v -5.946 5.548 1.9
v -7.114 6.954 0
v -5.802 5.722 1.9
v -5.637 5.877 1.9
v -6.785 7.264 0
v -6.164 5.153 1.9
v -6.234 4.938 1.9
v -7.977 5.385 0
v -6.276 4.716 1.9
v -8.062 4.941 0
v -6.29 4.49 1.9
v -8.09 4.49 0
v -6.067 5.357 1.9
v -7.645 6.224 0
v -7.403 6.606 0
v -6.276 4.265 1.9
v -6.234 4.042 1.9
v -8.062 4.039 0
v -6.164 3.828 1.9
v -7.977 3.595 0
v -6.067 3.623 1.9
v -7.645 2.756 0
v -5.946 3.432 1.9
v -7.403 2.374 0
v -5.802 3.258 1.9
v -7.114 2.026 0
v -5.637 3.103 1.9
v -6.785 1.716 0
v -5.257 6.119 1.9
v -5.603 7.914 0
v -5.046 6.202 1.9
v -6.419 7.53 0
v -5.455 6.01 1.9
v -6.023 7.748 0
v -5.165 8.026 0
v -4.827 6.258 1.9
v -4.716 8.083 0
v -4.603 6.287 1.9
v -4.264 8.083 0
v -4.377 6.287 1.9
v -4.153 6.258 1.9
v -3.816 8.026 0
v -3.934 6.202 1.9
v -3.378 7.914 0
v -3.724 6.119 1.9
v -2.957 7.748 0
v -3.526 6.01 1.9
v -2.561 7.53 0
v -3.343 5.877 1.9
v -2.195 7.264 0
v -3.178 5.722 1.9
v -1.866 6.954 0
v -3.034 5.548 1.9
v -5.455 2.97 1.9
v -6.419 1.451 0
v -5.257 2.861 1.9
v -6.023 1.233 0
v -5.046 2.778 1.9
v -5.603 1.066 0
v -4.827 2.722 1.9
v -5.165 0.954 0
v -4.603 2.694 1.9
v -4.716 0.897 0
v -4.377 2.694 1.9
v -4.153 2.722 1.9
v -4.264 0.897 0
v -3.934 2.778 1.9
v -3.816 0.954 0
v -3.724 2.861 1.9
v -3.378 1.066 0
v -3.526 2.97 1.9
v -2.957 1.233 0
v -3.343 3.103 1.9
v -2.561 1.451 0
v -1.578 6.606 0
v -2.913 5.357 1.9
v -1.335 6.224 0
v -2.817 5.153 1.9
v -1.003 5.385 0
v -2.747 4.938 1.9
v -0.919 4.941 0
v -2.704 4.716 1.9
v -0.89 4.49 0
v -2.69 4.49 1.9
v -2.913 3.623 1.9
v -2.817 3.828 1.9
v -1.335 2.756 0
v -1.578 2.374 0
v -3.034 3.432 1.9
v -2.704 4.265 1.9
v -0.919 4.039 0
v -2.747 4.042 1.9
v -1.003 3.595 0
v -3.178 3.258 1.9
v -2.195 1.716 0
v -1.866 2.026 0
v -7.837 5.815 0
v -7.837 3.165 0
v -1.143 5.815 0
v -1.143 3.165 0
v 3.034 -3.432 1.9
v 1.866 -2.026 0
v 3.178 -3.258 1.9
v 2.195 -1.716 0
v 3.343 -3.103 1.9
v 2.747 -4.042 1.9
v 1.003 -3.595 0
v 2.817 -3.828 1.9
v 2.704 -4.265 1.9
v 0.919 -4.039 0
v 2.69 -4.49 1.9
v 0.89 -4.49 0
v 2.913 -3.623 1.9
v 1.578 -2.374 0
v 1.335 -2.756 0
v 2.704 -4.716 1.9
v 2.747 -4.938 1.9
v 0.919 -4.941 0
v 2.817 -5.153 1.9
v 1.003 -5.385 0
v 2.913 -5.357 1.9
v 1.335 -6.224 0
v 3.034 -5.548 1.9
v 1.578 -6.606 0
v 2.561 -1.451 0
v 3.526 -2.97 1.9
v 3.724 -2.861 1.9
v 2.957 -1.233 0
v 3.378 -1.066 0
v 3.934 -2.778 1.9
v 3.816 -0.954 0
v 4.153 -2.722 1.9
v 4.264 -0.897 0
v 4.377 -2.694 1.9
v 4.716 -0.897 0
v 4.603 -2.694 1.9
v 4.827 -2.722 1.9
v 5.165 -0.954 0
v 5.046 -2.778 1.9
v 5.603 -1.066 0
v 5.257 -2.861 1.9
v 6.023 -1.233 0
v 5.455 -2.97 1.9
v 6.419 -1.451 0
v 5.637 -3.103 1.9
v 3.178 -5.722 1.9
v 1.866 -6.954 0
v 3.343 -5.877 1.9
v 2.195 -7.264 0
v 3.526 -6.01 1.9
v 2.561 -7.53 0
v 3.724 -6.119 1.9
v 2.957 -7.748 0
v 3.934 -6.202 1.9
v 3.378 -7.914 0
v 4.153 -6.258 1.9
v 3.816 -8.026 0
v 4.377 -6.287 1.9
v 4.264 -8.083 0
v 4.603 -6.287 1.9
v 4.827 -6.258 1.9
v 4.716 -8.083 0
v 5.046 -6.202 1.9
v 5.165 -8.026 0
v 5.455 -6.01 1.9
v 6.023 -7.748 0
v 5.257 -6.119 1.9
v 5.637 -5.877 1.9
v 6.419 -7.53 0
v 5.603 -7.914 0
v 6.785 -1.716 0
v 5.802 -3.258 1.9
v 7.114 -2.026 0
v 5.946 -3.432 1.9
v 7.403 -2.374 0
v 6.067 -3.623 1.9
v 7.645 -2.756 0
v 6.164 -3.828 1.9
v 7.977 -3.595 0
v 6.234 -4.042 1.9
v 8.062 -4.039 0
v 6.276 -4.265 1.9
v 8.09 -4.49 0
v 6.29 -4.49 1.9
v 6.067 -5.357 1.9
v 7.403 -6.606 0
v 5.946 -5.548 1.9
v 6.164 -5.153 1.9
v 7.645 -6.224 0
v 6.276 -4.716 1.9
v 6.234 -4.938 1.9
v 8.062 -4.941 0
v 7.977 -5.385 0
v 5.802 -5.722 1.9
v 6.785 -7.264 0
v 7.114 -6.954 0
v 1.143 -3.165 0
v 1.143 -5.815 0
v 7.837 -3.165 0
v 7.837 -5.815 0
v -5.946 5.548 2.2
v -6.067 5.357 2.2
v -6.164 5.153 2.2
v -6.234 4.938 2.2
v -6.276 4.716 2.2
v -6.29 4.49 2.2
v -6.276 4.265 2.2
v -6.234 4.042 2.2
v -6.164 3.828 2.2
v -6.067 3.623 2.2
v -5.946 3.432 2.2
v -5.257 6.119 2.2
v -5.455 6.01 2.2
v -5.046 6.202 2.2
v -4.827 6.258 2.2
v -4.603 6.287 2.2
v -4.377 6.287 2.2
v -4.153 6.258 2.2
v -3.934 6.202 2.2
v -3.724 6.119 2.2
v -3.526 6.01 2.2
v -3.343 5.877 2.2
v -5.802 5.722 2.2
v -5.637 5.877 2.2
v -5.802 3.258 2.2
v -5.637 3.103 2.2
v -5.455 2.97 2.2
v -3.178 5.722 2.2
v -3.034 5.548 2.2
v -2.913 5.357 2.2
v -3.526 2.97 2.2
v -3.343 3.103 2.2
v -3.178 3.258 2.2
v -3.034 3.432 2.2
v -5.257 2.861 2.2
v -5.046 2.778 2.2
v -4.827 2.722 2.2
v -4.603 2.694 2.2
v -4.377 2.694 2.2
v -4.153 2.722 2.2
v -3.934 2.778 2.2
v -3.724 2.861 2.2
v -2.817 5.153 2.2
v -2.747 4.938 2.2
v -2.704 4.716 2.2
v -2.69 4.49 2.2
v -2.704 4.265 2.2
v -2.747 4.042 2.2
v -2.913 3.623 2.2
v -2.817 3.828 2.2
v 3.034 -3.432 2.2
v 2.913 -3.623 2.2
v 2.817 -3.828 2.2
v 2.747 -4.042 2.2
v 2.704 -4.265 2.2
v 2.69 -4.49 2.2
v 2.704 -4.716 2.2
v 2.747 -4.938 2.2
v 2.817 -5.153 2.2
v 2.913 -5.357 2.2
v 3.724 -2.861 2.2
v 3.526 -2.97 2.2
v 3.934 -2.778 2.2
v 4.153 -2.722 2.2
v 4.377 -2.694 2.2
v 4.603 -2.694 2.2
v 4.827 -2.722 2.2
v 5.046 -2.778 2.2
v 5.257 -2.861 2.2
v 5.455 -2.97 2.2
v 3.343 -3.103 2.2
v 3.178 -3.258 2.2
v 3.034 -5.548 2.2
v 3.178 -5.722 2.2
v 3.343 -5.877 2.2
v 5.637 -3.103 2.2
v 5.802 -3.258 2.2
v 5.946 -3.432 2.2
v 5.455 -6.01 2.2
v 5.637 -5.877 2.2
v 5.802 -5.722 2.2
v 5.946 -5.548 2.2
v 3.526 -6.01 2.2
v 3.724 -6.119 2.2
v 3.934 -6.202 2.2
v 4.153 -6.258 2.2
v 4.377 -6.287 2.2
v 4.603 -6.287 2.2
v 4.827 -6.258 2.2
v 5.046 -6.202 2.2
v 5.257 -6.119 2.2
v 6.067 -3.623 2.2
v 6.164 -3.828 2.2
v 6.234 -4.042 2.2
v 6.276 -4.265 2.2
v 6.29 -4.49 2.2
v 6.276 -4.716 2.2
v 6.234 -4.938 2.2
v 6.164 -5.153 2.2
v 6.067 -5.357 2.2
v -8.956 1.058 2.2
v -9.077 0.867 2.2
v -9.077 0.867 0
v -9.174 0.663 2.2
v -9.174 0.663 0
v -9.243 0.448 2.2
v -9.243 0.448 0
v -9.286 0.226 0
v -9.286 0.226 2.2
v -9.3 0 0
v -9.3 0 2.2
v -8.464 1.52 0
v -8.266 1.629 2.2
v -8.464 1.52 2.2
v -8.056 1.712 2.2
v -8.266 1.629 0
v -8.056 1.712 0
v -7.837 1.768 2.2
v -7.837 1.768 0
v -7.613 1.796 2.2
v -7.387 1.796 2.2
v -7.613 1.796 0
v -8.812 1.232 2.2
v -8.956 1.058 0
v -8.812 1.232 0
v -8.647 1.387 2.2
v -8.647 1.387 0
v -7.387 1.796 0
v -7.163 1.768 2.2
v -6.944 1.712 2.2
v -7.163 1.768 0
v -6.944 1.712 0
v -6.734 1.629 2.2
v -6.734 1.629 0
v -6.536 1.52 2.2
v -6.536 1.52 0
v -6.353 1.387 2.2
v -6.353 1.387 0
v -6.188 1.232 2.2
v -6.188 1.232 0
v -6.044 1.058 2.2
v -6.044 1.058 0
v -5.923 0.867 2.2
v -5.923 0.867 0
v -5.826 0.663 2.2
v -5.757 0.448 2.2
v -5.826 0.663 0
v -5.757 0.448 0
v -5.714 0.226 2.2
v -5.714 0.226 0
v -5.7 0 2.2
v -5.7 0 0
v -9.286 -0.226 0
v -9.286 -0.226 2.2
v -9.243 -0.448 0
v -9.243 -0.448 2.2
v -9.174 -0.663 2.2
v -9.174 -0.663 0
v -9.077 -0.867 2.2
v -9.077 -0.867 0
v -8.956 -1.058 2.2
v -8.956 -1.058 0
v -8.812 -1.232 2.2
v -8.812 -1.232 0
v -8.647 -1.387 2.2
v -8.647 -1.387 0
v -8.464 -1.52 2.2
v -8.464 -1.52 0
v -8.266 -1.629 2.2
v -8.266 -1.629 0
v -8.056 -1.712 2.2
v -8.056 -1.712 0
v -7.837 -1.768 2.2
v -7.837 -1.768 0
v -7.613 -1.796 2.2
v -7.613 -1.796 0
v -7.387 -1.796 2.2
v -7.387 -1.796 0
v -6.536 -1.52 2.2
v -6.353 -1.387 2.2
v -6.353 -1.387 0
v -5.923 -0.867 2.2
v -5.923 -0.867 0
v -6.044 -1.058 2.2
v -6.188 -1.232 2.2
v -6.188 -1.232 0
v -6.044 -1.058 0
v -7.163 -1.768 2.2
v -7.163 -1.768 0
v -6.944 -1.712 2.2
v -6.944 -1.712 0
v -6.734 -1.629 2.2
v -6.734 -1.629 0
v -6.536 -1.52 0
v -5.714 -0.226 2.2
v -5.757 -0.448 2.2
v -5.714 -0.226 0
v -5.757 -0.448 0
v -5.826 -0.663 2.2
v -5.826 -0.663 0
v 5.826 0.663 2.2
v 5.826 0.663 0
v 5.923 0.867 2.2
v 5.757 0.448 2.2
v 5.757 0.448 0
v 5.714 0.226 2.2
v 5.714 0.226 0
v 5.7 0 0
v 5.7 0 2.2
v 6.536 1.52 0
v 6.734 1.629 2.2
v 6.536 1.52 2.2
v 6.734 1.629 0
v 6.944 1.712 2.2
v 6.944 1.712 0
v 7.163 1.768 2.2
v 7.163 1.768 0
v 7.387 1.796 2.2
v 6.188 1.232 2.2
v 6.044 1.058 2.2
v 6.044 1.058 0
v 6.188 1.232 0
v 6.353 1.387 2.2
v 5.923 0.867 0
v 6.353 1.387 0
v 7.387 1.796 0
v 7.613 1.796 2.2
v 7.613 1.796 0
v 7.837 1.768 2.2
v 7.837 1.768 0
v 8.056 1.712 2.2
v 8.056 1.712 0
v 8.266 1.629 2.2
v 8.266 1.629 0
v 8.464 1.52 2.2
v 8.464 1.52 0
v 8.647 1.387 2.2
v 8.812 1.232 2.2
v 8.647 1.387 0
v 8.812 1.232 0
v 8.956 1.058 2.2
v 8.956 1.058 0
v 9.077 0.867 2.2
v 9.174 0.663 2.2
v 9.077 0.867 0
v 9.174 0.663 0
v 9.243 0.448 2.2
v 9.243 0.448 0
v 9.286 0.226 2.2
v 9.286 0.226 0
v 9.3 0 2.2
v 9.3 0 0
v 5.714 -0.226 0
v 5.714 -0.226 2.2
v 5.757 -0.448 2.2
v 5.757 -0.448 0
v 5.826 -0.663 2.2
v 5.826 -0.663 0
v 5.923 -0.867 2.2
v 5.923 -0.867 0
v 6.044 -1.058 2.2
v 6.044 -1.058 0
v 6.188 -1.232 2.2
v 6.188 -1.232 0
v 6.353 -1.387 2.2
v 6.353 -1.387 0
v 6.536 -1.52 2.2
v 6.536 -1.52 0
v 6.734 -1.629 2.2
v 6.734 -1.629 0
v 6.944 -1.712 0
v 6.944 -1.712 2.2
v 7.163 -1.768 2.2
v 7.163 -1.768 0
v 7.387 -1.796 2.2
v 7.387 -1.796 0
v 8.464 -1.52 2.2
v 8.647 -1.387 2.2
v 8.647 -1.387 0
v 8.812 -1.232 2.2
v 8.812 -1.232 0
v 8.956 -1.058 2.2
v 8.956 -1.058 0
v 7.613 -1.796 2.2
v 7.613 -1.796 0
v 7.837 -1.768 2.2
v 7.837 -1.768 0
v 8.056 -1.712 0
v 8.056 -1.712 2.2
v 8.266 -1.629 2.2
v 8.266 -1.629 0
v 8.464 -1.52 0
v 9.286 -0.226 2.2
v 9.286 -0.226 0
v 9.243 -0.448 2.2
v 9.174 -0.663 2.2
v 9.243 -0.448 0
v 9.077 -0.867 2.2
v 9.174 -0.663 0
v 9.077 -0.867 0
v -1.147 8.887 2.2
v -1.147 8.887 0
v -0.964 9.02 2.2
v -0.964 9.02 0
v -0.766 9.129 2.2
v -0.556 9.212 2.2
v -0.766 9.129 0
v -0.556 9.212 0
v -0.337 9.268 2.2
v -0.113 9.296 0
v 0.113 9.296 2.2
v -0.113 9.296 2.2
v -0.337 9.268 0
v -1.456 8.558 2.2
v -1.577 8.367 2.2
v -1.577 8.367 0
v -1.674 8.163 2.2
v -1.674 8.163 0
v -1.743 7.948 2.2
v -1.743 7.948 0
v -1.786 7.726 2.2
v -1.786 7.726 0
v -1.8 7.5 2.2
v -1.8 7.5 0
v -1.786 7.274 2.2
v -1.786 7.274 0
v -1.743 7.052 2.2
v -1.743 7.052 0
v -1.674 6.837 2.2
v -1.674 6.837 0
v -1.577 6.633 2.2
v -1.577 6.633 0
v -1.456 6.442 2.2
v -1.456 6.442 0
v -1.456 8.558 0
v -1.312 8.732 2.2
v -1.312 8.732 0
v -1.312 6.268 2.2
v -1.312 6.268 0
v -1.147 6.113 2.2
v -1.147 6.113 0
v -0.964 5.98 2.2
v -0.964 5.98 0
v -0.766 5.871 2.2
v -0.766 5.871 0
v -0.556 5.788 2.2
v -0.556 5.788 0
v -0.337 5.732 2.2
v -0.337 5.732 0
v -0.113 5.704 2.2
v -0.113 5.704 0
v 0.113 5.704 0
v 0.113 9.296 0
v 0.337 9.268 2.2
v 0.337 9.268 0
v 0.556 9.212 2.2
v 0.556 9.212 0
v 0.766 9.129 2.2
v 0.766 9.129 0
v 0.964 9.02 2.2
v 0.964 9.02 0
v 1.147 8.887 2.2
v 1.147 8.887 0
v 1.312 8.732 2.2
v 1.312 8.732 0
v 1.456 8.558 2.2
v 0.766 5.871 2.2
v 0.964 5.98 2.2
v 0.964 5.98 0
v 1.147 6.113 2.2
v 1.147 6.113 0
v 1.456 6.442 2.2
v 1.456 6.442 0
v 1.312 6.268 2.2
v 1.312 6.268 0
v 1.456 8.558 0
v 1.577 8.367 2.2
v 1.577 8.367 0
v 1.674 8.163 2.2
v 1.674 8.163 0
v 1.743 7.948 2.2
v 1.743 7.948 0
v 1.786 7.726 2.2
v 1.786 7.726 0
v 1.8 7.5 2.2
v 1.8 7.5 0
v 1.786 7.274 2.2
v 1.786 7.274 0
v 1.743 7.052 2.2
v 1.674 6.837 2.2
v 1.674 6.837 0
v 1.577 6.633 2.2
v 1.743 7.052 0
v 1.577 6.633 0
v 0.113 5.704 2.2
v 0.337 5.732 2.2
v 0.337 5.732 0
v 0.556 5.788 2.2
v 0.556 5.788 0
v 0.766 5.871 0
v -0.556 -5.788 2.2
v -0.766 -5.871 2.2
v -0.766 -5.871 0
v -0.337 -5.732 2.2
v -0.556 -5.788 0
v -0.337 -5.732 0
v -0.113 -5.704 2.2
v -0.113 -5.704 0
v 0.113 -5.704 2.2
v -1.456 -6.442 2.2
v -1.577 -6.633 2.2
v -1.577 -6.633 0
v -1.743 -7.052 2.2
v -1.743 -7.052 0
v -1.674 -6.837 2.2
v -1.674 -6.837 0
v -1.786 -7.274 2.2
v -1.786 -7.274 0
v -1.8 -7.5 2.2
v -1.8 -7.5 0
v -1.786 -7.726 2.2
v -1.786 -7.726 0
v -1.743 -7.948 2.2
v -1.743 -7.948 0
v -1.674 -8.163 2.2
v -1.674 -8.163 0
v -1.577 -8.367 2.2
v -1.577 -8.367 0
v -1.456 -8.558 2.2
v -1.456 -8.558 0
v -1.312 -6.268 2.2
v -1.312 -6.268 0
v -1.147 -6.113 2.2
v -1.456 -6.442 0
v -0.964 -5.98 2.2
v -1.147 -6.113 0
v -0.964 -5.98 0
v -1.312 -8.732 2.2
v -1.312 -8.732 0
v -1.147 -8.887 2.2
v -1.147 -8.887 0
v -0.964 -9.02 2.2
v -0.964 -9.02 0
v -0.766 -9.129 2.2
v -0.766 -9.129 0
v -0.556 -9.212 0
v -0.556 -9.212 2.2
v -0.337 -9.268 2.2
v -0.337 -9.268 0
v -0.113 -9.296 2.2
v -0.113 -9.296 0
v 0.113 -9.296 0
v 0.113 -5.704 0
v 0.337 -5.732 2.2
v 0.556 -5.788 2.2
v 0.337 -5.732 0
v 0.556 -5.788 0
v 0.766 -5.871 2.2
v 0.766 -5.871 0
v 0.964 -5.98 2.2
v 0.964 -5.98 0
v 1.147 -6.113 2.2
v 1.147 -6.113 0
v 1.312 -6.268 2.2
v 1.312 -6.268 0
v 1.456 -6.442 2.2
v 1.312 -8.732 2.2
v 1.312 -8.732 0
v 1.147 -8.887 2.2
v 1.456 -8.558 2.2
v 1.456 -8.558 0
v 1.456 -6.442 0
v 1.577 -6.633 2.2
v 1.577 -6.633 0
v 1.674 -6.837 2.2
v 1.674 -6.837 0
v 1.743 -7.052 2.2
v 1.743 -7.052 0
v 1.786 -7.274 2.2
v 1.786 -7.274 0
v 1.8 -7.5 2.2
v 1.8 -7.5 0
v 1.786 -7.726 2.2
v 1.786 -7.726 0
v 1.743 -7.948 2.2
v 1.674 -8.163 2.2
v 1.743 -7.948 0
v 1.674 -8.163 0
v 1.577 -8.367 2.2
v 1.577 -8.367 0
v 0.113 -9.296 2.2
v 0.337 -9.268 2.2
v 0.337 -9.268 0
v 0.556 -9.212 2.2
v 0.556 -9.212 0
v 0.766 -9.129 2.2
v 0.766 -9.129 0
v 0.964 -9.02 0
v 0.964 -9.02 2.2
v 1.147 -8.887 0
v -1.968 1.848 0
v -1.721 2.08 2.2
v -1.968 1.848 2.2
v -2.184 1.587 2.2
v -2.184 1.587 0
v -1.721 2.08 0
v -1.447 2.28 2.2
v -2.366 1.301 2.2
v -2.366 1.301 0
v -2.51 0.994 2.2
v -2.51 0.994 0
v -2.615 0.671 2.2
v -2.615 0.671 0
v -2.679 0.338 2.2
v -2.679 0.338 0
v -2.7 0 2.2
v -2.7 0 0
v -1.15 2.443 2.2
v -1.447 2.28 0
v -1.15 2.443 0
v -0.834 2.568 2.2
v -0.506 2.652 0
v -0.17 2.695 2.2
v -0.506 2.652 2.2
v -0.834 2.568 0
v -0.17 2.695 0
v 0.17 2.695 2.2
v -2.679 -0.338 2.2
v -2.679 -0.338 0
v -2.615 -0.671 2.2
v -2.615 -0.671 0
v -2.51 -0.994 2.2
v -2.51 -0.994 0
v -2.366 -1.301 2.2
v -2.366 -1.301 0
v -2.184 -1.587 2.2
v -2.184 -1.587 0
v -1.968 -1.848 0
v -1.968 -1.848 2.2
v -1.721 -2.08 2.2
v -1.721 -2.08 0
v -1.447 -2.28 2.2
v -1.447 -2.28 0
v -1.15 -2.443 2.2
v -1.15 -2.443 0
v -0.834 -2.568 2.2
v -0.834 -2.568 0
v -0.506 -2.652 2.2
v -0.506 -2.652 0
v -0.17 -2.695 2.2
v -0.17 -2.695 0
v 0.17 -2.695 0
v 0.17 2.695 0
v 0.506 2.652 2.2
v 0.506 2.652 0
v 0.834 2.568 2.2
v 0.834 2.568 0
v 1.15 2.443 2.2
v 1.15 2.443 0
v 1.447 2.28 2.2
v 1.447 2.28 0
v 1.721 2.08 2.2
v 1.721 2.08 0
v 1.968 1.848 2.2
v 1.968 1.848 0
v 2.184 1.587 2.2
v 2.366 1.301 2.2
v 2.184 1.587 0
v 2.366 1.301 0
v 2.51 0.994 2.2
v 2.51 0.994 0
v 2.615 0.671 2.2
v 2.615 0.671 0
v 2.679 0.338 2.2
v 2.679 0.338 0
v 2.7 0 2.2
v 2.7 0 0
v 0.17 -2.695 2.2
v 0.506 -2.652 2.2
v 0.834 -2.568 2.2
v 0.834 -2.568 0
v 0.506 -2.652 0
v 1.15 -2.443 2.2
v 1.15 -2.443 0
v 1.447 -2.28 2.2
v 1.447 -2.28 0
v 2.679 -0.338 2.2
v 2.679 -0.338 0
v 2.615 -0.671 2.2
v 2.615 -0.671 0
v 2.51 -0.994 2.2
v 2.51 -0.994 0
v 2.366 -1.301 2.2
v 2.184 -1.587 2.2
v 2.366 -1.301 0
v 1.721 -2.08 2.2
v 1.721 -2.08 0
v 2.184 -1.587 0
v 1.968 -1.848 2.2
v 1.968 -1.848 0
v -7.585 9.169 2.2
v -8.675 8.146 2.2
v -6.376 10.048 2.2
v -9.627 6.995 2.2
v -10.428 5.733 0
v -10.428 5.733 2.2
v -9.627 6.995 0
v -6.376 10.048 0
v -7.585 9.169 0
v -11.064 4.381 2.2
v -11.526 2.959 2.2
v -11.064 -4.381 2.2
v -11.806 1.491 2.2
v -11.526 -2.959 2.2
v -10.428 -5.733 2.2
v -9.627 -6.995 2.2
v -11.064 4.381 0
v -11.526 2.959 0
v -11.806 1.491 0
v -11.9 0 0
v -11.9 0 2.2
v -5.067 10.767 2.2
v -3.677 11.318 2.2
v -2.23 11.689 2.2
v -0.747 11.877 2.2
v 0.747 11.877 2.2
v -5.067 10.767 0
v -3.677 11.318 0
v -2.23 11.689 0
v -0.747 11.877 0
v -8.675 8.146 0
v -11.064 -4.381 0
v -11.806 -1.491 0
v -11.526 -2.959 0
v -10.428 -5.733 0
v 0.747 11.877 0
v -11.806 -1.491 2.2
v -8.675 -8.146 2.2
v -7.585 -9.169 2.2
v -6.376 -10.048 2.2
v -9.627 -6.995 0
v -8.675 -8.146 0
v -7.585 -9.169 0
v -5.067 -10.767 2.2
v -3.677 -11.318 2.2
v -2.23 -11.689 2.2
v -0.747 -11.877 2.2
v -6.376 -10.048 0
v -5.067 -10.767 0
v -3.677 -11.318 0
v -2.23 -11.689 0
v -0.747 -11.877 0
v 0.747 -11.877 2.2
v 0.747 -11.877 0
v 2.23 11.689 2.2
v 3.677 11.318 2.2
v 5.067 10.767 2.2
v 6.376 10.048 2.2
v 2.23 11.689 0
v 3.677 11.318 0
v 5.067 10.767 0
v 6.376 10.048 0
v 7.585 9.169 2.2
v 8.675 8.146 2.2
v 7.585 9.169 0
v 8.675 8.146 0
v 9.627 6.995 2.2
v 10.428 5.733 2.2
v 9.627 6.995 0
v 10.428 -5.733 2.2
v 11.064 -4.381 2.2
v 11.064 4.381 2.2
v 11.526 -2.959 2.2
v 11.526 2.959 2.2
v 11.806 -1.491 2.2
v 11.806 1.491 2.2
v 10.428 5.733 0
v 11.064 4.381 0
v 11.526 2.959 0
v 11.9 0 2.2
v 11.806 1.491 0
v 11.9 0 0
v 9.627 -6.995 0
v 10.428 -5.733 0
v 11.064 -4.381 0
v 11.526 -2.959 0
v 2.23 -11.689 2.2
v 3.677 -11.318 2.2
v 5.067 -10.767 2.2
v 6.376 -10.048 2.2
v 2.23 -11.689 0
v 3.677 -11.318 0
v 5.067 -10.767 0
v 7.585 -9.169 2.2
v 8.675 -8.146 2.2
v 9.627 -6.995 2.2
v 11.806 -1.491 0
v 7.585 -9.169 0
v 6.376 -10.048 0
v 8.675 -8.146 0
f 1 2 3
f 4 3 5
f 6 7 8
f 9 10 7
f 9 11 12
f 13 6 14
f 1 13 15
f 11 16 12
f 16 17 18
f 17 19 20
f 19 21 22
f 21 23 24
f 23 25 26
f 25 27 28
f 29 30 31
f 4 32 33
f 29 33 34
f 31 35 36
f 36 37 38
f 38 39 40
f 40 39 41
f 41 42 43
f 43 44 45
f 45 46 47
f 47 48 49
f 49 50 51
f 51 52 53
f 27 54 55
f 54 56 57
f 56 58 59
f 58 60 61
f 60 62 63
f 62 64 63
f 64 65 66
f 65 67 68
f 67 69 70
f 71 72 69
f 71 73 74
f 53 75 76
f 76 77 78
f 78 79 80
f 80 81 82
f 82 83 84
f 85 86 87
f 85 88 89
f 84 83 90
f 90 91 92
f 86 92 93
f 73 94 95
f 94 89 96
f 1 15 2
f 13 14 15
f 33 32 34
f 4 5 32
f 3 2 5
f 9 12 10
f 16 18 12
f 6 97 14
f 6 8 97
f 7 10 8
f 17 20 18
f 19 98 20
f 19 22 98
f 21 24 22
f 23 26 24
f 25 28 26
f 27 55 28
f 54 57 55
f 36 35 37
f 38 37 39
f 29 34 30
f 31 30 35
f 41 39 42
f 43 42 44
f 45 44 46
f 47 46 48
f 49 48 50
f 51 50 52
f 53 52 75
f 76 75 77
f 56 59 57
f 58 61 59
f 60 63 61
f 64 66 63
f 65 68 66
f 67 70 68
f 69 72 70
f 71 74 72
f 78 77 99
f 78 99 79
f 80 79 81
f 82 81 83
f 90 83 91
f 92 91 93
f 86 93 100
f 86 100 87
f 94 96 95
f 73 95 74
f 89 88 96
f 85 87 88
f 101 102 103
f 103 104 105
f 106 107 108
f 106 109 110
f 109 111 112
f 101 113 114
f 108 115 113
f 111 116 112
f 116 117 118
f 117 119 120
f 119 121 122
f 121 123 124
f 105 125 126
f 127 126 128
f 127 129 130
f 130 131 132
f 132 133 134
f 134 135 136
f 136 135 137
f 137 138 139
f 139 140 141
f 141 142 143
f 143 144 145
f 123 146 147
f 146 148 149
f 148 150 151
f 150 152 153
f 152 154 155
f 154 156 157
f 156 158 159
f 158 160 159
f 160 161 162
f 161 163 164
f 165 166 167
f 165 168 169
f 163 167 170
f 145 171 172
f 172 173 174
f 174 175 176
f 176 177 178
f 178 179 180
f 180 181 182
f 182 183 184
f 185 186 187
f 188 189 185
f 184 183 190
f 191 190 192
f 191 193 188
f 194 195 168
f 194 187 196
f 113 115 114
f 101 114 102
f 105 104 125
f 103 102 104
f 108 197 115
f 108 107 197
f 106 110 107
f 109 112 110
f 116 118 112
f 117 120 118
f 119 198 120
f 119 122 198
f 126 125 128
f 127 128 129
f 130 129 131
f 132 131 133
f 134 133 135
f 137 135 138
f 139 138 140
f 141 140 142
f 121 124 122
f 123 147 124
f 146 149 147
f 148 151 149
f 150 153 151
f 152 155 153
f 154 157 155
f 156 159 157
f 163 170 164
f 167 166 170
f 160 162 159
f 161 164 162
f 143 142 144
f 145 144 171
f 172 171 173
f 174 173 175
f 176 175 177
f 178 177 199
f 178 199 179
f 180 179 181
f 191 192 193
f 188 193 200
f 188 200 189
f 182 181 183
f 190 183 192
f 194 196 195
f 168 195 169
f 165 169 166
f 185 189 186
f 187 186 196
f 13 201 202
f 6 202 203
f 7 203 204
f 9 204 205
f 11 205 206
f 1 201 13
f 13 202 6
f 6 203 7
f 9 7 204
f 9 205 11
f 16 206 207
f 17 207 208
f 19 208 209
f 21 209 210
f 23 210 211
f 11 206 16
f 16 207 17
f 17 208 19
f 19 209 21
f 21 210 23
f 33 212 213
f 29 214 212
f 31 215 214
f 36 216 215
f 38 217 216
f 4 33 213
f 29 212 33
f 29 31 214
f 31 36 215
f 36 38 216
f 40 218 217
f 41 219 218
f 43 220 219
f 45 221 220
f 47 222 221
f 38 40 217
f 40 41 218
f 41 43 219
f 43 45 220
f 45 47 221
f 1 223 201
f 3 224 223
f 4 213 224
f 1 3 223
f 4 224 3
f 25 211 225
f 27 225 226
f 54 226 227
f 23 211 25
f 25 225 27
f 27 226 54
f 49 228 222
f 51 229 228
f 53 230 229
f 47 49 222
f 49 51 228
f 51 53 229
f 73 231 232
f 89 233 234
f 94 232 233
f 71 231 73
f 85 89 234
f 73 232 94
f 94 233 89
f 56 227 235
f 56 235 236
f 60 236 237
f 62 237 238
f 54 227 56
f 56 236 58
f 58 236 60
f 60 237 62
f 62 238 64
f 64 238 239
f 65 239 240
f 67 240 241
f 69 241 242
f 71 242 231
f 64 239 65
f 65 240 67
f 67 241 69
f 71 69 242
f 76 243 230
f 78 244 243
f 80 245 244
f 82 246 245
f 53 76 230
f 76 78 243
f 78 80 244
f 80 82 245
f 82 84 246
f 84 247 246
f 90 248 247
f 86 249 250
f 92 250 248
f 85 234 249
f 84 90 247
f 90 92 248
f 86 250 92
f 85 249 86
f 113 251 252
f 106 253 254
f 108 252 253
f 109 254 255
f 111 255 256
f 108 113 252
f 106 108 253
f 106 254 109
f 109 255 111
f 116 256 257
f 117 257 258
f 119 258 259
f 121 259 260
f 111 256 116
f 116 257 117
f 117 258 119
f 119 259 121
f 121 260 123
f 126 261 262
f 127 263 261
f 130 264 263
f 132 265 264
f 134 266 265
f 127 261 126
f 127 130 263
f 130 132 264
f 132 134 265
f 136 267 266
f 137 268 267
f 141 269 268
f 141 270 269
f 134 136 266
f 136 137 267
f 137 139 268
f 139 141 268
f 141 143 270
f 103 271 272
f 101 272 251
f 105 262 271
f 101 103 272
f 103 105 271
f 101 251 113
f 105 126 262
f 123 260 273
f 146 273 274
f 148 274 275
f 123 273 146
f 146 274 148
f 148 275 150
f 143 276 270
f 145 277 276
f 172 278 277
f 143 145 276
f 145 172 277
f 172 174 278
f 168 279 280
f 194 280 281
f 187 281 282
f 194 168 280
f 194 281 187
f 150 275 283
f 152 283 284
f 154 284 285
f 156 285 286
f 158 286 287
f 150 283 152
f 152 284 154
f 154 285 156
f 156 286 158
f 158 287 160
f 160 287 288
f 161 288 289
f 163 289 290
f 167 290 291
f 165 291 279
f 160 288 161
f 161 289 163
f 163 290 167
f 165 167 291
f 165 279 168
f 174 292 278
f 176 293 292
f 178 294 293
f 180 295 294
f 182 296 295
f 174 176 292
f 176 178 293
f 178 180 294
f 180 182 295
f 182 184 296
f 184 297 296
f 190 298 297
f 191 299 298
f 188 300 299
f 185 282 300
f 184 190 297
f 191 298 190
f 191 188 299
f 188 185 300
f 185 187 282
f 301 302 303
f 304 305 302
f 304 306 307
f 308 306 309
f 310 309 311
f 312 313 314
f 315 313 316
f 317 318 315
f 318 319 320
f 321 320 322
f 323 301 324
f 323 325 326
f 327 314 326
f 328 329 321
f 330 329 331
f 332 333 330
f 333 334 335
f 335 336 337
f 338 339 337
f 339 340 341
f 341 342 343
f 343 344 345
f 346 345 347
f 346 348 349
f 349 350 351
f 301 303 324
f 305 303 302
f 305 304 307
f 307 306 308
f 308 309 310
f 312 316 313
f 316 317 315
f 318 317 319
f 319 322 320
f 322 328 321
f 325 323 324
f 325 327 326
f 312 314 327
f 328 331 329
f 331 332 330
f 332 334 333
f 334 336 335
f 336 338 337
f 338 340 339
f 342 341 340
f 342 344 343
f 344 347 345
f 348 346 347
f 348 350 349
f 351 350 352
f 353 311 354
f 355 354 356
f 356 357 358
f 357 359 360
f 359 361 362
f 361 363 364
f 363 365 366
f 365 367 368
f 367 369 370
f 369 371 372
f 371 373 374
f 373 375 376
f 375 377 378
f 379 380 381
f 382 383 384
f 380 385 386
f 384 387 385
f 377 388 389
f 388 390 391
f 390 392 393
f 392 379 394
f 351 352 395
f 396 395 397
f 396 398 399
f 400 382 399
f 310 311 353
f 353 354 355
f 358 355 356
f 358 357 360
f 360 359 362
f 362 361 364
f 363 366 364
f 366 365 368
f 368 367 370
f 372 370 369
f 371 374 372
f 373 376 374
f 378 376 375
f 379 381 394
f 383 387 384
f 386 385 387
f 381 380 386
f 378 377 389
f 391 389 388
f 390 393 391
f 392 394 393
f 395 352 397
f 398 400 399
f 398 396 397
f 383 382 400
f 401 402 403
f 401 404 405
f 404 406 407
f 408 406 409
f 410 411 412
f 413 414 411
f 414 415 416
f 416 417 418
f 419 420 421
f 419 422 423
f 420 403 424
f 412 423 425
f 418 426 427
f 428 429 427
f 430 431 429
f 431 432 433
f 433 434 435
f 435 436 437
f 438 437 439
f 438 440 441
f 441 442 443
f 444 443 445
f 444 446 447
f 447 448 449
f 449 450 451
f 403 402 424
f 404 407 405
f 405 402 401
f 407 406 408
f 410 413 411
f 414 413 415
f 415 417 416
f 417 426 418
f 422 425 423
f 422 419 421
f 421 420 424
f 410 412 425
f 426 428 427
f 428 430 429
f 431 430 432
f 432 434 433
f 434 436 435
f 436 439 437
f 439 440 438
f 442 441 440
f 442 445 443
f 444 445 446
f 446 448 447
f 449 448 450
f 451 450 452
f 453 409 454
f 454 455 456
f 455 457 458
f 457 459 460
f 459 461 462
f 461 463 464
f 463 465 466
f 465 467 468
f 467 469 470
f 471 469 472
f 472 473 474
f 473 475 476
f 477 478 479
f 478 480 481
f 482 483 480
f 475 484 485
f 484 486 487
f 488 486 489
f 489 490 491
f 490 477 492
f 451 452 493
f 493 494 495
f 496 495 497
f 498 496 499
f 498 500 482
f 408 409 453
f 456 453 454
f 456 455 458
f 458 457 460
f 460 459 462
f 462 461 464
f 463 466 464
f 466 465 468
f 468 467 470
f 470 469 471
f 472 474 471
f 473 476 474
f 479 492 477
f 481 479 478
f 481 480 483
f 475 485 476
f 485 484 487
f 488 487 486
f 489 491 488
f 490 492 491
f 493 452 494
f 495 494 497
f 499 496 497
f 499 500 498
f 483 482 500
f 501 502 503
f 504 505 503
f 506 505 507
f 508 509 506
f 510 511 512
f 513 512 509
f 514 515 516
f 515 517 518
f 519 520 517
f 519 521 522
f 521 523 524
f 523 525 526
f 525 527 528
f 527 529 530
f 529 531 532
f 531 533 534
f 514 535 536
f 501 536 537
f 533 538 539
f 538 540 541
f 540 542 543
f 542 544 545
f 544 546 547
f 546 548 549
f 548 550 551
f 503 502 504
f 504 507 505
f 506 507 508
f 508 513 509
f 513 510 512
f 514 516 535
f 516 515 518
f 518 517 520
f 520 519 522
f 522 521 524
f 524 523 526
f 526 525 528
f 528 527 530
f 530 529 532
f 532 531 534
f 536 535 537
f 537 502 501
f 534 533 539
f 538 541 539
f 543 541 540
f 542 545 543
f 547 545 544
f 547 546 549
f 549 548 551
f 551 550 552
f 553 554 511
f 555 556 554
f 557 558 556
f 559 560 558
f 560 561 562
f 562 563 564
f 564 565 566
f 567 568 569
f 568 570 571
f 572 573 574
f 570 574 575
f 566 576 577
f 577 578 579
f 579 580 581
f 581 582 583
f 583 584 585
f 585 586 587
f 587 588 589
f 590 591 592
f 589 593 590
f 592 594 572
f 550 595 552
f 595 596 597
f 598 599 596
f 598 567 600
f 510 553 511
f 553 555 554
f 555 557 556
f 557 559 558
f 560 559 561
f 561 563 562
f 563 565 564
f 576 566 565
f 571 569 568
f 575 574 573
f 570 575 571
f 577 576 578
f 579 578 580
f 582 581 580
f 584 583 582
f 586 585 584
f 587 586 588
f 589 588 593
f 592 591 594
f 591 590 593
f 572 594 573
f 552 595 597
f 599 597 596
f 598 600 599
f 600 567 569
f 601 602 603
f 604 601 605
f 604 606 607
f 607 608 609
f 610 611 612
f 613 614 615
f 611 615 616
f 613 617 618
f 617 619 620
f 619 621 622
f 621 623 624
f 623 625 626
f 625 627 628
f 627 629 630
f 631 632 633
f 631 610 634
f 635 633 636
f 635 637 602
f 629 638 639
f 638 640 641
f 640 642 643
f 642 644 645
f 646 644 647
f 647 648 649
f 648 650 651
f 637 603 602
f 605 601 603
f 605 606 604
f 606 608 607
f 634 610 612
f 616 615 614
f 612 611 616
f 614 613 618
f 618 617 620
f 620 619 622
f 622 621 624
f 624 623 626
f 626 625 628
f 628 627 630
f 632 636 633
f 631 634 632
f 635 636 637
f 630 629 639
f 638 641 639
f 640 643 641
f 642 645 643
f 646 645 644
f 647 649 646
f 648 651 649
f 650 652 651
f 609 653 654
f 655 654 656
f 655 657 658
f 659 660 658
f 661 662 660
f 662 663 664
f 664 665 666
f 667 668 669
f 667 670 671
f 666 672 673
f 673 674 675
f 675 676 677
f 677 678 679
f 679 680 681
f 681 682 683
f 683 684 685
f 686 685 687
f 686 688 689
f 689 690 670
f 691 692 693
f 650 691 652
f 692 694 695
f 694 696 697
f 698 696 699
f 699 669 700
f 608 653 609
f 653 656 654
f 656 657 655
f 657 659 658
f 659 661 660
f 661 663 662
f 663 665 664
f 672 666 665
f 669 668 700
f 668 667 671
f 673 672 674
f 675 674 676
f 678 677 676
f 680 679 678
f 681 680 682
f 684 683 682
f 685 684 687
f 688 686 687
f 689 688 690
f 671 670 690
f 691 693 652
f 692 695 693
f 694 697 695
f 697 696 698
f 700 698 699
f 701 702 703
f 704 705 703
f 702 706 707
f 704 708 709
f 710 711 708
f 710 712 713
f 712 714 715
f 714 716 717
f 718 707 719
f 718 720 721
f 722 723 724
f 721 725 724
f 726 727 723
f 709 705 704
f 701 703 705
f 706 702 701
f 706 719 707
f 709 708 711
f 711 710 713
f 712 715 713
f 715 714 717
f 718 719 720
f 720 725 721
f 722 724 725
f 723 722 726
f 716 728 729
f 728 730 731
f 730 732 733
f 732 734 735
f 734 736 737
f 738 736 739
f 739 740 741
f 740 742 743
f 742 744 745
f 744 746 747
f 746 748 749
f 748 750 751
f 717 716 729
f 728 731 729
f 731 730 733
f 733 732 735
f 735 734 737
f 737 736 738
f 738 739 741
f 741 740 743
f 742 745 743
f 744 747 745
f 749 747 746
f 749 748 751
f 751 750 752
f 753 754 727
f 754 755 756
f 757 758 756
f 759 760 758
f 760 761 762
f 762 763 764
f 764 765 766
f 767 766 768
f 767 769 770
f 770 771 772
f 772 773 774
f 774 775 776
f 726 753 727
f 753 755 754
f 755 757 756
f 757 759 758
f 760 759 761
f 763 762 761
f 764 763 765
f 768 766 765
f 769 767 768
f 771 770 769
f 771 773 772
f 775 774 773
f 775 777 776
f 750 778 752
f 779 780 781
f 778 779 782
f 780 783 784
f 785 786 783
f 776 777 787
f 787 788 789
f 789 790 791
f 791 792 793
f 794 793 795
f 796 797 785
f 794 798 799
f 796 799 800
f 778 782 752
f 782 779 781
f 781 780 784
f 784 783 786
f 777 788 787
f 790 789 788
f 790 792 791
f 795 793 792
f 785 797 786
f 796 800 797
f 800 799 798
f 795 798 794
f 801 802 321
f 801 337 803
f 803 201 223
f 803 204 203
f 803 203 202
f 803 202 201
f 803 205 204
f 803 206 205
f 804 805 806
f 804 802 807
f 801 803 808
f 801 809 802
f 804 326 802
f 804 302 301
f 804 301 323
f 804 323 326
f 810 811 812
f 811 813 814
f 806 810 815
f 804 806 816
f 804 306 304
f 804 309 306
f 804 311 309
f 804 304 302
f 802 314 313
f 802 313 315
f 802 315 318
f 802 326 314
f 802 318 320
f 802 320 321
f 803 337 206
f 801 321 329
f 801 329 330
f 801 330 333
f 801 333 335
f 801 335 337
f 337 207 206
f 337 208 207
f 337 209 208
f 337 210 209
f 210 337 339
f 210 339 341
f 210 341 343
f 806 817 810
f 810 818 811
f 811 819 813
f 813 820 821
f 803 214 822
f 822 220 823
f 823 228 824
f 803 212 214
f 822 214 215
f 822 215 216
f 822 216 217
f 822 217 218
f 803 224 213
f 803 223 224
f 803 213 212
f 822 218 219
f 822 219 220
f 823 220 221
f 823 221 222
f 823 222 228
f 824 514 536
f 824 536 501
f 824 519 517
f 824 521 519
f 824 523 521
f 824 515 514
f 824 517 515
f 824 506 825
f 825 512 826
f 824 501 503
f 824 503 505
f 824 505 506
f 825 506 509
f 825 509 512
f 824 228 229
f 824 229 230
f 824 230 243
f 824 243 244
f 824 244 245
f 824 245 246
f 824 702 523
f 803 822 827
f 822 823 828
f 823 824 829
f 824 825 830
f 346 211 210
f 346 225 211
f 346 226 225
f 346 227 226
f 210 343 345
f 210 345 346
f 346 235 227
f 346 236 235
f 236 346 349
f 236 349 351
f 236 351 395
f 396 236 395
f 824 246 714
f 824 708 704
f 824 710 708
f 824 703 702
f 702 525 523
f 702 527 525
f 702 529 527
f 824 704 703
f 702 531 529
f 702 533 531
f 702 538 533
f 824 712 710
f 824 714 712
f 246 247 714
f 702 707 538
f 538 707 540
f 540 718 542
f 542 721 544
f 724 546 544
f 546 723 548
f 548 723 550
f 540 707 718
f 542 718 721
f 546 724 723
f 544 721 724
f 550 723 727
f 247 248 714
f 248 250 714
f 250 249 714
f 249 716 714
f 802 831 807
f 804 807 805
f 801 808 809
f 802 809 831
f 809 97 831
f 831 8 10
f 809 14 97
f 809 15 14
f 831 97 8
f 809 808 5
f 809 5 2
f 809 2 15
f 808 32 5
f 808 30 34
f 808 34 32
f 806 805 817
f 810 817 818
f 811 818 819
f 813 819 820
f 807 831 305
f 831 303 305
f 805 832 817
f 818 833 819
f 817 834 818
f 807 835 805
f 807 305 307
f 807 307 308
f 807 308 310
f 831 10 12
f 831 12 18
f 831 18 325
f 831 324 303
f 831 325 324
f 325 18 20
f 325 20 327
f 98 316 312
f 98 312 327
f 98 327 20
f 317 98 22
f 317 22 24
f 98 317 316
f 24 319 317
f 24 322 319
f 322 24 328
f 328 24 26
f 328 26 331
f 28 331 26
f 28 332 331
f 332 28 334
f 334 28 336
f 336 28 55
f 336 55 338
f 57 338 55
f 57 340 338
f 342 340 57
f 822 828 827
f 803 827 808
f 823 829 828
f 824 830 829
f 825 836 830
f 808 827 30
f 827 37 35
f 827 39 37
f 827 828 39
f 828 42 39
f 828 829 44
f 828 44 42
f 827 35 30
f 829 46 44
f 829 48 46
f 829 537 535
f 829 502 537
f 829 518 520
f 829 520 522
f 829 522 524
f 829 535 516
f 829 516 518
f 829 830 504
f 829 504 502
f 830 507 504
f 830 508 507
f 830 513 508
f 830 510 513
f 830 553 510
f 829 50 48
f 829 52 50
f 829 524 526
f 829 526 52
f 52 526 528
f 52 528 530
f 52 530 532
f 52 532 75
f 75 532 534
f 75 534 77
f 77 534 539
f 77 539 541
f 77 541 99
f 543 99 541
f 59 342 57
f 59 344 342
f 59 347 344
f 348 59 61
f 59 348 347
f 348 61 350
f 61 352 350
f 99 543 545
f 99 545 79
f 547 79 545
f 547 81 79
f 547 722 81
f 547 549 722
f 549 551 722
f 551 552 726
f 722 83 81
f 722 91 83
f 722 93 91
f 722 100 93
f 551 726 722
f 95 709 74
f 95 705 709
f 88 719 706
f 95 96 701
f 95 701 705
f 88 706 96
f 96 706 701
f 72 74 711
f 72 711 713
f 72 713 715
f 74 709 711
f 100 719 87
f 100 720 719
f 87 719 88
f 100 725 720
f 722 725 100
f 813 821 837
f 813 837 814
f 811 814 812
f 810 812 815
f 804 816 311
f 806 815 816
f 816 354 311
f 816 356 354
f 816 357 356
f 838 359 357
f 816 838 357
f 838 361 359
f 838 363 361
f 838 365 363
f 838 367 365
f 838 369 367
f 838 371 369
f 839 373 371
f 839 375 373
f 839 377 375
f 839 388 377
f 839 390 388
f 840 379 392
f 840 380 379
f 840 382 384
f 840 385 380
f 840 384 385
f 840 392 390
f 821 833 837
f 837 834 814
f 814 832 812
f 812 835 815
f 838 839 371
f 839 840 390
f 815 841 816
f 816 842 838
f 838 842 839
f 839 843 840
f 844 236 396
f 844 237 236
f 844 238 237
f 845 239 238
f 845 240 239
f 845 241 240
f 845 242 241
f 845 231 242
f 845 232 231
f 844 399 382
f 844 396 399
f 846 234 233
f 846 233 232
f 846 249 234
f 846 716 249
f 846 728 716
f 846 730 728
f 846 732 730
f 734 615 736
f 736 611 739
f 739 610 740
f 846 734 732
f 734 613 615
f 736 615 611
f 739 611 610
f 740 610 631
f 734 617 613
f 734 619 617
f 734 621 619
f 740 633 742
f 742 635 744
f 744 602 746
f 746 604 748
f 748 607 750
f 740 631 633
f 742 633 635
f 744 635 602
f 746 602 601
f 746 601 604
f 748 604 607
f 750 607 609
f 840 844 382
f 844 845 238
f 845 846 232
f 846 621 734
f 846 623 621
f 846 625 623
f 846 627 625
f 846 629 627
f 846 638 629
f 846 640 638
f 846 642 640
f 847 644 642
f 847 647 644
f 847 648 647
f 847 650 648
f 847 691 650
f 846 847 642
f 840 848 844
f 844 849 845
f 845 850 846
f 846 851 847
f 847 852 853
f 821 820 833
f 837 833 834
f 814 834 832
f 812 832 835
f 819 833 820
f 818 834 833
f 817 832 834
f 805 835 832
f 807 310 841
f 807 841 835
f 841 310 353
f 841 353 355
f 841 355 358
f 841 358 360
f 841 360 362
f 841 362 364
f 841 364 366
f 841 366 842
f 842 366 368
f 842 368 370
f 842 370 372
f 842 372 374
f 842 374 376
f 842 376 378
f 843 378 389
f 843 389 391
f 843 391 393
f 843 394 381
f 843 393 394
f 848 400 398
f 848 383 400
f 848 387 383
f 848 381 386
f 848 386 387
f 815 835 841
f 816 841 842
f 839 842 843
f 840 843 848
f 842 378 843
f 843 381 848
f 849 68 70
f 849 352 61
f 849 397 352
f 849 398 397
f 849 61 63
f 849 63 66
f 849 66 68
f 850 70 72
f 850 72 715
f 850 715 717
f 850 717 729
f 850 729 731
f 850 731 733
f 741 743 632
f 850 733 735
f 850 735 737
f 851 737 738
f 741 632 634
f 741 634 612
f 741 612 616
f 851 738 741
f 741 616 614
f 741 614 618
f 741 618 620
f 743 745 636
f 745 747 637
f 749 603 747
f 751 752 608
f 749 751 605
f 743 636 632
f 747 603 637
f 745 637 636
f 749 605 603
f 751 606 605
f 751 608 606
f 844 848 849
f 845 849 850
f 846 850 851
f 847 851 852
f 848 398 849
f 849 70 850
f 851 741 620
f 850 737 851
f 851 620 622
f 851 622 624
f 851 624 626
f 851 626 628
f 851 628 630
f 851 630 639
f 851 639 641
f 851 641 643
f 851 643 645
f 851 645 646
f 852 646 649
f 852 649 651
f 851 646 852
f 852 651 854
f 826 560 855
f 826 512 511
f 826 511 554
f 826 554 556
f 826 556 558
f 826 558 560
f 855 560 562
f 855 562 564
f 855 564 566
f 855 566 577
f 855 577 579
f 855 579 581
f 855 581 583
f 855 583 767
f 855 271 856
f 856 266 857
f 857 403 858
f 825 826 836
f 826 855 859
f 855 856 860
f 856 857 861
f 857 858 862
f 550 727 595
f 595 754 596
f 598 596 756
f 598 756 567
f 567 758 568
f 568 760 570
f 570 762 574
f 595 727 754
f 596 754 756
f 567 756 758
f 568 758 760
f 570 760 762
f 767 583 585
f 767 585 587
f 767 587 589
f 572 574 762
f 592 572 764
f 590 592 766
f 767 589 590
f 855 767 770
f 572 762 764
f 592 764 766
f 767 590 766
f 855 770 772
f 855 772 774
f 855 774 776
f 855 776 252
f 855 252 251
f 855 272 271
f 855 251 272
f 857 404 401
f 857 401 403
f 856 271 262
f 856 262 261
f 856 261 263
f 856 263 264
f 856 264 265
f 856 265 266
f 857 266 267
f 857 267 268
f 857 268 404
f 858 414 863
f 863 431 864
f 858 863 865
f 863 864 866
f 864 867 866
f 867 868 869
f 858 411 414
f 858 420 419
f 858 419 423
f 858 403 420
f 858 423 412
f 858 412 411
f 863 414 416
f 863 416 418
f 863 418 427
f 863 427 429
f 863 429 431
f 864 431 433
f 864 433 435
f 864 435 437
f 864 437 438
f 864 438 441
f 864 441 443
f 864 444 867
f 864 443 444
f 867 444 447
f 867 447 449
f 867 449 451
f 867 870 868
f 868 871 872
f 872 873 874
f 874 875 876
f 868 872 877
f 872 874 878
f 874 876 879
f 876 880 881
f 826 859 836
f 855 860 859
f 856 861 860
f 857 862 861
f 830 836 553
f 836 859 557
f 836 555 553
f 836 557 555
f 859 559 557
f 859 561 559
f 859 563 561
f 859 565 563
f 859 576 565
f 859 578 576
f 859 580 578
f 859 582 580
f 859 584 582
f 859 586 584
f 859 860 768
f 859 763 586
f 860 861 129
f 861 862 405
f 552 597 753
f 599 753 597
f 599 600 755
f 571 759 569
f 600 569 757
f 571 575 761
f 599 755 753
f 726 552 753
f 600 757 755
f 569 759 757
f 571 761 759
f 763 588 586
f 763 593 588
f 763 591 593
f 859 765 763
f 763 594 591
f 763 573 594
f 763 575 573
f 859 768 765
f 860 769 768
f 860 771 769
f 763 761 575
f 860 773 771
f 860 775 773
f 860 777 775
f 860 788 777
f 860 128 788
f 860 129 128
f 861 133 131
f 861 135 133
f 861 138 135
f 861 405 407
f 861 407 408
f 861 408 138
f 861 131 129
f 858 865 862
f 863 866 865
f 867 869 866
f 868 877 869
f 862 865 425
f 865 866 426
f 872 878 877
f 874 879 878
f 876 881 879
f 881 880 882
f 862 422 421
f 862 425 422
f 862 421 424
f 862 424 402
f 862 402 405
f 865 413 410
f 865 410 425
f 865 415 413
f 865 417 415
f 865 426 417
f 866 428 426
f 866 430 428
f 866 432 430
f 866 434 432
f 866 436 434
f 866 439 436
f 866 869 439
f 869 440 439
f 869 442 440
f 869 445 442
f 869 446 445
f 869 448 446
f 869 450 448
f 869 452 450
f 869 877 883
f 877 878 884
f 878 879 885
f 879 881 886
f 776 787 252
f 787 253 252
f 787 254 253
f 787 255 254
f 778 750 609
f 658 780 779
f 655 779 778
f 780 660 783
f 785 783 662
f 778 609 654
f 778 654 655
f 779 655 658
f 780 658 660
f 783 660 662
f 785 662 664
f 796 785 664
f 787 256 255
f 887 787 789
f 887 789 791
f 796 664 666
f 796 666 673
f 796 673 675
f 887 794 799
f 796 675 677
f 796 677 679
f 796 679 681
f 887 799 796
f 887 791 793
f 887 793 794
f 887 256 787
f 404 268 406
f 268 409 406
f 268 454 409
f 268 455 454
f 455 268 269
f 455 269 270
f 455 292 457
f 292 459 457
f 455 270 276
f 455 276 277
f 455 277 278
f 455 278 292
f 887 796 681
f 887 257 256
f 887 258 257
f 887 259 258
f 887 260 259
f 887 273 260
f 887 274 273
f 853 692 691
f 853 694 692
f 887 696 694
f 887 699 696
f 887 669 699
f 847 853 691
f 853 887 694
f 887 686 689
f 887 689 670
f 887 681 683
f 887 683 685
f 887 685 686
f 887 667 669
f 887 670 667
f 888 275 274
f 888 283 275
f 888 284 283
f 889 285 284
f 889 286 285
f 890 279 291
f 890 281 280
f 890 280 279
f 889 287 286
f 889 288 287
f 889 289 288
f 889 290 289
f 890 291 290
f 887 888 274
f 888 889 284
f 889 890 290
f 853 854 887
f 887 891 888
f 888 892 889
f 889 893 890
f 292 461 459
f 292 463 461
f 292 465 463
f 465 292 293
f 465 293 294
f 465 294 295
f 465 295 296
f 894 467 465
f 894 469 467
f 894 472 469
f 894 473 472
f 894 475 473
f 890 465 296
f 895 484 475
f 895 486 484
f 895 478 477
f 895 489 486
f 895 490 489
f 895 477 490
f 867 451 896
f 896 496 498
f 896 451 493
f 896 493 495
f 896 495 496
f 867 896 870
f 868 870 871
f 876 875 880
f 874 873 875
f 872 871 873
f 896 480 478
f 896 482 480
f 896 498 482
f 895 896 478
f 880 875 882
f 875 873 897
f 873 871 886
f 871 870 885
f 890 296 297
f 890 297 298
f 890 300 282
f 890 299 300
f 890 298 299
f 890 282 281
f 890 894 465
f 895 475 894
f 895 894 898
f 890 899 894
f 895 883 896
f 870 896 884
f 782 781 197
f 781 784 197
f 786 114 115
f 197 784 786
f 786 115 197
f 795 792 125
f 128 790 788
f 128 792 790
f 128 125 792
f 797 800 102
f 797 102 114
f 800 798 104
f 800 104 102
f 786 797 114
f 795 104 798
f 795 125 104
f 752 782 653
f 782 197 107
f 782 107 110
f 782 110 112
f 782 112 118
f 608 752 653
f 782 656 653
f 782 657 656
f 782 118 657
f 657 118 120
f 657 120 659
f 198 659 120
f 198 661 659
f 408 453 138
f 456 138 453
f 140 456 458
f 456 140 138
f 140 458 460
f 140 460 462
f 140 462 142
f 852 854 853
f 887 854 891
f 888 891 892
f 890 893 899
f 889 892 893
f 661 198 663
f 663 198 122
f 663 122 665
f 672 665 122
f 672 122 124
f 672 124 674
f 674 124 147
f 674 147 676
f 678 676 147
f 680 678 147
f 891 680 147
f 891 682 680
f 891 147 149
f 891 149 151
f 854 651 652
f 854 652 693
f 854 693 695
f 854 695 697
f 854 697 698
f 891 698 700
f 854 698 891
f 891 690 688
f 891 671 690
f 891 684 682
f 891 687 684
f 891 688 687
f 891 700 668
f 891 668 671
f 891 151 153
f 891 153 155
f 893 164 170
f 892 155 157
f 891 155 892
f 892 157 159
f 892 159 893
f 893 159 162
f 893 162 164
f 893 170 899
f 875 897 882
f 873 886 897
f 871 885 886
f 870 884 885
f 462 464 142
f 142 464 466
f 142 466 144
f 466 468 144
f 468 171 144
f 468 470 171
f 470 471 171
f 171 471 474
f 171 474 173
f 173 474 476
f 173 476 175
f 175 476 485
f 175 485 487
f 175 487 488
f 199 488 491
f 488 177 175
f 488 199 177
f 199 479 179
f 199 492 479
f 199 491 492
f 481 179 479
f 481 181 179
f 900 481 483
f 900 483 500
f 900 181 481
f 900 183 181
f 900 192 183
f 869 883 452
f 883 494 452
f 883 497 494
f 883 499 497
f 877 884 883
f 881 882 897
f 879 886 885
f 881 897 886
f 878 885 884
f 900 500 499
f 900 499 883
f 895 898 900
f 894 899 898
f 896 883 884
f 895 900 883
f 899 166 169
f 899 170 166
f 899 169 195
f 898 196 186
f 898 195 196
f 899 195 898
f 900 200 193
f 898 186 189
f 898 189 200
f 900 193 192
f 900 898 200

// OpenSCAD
$fn = 50;

difference() {
	union() {
		translate(v = [0, 0, 21.6]) {
			rotate(a = [180, 0, 0]) {
				difference() {
					union() {
						translate(v = [0, 0, 19.4]) {
							cylinder(h = 2.2, r = 11.9);
						}
					}
					union() {
						translate(v = [-4.490128060534576, -4.490128060534576, 21.6]) {
							rotate(a = [0, 0, 0]) {
								difference() {
									union() {
										translate(v = [0, 0, -10.0]) {
											cylinder(h = 10, r = 1.5);
										}
										translate(v = [0, 0, -1.9]) {
											cylinder(h = 1.9, r1 = 1.8, r2 = 3.6);
										}
										cylinder(h = 250, r = 3.6);
										translate(v = [0, 0, -10.0]) {
											cylinder(h = 10, r = 1.8);
										}
										translate(v = [0, 0, -10.0]) {
											cylinder(h = 10, r = 1.5);
										}
									}
									union();
								}
							}
						}
						translate(v = [4.490128060534576, 4.490128060534576, 21.6]) {
							rotate(a = [0, 0, 0]) {
								difference() {
									union() {
										translate(v = [0, 0, -10.0]) {
											cylinder(h = 10, r = 1.5);
										}
										translate(v = [0, 0, -1.9]) {
											cylinder(h = 1.9, r1 = 1.8, r2 = 3.6);
										}
										cylinder(h = 250, r = 3.6);
										translate(v = [0, 0, -10.0]) {
											cylinder(h = 10, r = 1.8);
										}
										translate(v = [0, 0, -10.0]) {
											cylinder(h = 10, r = 1.5);
										}
									}
									union();
								}
							}
						}
						translate(v = [-7.5, 0, 18.4]) {
							cylinder(h = 4.2, r = 1.8);
						}
						translate(v = [7.5, 0, 18.4]) {
							cylinder(h = 4.2, r = 1.8);
						}
						translate(v = [0, -7.5, 18.4]) {
							cylinder(h = 4.2, r = 1.8);
						}
						translate(v = [0, 7.5, 18.4]) {
							cylinder(h = 4.2, r = 1.8);
						}
						translate(v = [0, 0, 19.2]) {
							cylinder(h = 4.2, r = 2.7);
						}
					}
				}
			}
		}
	}
	union();
}
